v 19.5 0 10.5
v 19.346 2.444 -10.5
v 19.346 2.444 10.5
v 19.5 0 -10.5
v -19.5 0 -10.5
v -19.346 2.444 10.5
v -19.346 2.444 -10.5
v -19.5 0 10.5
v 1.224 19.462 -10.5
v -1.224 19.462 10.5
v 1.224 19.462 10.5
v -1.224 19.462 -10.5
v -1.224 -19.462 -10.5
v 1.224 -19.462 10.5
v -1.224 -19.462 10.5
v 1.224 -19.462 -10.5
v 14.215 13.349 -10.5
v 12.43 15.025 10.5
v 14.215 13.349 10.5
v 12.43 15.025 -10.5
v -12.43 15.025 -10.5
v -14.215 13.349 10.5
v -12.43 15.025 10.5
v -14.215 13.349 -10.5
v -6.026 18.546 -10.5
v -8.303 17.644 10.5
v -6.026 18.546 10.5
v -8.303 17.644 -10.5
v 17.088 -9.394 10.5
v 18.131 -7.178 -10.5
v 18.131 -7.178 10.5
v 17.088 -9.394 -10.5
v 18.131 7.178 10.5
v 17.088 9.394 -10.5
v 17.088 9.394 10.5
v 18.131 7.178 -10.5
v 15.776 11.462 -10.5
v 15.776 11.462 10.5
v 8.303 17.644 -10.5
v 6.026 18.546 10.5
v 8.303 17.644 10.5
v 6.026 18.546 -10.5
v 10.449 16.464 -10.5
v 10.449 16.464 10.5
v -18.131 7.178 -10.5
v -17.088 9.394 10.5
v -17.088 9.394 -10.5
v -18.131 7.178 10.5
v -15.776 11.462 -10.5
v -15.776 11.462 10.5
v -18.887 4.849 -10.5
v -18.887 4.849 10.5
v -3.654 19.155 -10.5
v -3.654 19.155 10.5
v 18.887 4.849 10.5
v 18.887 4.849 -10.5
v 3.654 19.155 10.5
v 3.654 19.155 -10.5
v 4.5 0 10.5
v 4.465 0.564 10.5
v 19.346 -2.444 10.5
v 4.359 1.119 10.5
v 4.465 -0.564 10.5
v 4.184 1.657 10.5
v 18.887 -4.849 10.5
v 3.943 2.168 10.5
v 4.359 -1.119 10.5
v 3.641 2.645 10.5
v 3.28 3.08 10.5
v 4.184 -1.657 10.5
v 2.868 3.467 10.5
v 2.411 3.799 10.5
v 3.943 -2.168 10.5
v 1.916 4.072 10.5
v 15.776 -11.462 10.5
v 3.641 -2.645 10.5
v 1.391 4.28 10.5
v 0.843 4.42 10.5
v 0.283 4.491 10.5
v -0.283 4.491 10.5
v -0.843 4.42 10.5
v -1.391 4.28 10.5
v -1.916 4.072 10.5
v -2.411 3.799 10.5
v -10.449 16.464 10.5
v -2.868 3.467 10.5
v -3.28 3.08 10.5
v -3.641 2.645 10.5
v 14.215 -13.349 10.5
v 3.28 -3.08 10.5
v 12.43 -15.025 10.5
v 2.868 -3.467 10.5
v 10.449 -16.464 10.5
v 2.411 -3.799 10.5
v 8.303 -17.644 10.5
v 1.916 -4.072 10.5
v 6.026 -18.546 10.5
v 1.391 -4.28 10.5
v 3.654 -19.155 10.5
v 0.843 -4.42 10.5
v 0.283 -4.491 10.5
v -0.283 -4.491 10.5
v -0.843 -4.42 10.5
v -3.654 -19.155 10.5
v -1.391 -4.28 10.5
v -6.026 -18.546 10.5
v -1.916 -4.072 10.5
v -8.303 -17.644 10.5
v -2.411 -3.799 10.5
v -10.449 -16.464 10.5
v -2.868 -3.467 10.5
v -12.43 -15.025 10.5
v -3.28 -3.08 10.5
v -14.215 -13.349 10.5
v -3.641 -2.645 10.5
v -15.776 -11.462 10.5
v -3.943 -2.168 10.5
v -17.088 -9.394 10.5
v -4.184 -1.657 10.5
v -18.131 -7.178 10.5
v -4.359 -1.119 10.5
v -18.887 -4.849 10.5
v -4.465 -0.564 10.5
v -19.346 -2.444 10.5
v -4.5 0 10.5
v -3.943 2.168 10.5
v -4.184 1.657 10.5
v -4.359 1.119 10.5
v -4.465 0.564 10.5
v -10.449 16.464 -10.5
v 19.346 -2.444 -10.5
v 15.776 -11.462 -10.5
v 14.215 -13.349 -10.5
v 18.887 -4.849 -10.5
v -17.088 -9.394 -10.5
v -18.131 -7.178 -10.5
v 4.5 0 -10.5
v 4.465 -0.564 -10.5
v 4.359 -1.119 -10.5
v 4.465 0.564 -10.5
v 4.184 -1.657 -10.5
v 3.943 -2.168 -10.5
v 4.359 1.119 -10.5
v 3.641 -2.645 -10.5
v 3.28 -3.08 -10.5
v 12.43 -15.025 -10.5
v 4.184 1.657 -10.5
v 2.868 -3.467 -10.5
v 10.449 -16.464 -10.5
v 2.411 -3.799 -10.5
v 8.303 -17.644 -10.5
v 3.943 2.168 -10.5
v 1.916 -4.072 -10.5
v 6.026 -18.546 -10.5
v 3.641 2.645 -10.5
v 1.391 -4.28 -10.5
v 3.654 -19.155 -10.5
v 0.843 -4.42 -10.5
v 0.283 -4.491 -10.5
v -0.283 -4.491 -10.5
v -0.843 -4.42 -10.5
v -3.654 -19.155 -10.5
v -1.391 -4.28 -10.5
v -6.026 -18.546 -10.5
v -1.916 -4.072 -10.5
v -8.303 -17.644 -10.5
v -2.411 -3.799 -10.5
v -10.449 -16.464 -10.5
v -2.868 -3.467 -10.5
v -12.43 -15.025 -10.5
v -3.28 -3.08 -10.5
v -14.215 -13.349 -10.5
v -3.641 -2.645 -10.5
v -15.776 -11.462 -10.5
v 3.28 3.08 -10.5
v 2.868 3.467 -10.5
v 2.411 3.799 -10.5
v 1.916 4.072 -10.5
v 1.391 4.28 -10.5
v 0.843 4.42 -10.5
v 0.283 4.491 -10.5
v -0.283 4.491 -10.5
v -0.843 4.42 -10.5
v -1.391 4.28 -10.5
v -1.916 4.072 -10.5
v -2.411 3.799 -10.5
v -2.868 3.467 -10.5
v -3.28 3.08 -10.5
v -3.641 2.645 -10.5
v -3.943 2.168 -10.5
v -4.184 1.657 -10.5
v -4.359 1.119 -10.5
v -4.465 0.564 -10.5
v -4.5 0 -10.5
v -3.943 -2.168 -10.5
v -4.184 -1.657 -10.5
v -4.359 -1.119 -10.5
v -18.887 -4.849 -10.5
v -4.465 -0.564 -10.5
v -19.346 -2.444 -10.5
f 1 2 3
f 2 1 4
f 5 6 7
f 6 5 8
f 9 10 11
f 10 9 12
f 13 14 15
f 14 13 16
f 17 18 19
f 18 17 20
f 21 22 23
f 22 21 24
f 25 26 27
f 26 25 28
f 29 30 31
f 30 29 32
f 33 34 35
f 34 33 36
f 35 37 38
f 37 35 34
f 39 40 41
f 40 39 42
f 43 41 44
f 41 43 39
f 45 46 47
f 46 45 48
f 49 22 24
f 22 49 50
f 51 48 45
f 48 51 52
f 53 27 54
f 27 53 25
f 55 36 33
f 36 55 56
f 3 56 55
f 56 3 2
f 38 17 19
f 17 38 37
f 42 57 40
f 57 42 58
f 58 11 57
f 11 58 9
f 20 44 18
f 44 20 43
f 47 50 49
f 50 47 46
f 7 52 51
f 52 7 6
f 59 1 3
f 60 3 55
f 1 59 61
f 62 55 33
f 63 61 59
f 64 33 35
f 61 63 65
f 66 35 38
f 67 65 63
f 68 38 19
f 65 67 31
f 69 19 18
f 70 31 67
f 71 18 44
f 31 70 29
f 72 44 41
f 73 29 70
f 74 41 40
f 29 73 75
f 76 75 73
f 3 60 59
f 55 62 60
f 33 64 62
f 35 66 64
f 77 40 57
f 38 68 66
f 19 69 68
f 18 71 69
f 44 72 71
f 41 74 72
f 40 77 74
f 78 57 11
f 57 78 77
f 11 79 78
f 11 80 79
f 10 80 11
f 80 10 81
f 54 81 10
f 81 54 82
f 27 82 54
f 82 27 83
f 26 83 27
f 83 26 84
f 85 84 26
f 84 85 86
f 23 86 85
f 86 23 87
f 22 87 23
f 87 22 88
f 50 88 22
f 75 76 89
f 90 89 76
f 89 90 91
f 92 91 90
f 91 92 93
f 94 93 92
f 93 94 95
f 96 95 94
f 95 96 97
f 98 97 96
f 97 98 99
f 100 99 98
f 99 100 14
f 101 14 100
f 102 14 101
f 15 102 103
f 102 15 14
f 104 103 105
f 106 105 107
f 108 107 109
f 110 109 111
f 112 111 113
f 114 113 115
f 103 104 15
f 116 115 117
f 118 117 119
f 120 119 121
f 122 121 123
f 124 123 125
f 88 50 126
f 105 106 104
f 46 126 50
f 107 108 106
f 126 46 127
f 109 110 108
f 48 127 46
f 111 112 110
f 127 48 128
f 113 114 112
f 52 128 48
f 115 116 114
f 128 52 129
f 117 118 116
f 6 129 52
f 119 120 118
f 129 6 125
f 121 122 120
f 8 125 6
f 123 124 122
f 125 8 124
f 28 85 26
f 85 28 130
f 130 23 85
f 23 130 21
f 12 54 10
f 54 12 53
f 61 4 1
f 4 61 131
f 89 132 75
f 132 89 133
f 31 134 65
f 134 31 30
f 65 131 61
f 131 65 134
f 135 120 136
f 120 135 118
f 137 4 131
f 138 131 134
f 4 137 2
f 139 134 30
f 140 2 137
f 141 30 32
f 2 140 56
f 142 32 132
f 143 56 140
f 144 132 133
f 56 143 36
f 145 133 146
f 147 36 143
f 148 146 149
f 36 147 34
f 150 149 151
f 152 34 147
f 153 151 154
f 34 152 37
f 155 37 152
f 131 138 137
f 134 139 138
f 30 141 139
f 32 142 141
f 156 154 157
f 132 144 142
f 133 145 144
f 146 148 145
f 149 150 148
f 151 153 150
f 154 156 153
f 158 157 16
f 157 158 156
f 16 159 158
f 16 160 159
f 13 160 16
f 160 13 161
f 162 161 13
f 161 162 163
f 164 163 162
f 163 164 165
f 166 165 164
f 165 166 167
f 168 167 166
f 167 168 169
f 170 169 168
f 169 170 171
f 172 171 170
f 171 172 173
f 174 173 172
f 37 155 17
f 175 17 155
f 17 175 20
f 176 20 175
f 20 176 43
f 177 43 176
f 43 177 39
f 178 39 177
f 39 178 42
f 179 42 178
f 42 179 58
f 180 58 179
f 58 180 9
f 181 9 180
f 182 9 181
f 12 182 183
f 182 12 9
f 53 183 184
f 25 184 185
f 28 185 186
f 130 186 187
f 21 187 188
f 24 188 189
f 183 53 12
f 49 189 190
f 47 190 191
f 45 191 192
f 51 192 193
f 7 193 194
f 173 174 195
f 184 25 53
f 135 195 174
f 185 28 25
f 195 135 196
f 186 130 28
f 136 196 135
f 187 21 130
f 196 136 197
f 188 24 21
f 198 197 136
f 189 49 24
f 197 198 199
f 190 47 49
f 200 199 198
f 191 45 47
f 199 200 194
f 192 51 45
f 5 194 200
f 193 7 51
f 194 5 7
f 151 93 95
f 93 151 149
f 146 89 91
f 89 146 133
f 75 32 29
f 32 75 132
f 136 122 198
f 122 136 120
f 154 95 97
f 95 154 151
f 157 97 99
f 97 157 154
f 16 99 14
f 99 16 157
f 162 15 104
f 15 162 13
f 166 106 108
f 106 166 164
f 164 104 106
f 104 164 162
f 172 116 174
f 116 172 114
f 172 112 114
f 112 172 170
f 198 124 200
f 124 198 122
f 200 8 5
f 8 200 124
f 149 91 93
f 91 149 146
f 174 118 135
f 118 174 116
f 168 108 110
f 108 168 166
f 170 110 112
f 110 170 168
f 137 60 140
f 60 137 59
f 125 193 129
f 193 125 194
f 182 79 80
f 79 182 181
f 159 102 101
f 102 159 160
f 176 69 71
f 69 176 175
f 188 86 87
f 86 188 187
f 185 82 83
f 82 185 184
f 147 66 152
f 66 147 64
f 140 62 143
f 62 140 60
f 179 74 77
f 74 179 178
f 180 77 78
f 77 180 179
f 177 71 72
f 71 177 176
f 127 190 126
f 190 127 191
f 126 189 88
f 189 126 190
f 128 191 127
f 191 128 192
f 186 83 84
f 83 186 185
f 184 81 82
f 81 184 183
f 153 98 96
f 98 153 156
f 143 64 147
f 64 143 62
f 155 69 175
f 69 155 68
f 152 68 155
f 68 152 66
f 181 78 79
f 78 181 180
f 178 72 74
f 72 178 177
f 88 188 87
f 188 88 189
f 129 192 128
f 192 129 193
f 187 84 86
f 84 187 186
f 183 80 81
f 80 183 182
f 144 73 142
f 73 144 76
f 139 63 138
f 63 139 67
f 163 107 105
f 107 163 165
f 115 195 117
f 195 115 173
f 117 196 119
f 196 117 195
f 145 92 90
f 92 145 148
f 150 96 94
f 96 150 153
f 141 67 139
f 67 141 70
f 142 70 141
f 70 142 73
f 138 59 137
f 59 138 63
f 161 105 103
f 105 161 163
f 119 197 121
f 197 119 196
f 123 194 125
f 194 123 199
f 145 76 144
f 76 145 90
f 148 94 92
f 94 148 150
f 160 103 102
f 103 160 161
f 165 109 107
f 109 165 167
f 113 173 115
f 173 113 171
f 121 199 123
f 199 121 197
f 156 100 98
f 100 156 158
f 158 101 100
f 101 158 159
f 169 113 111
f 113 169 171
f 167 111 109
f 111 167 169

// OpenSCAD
$fn = 50;


difference() {
	union() {
		translate(v = [0, 0, -10.5000000000]) {
			cylinder(h = 21, r = 19.5000000000);
		}
	}
	union() {
		translate(v = [0, 0, -100.0000000000]) {
			cylinder(h = 200, r = 4.5000000000);
		}
	}
}
